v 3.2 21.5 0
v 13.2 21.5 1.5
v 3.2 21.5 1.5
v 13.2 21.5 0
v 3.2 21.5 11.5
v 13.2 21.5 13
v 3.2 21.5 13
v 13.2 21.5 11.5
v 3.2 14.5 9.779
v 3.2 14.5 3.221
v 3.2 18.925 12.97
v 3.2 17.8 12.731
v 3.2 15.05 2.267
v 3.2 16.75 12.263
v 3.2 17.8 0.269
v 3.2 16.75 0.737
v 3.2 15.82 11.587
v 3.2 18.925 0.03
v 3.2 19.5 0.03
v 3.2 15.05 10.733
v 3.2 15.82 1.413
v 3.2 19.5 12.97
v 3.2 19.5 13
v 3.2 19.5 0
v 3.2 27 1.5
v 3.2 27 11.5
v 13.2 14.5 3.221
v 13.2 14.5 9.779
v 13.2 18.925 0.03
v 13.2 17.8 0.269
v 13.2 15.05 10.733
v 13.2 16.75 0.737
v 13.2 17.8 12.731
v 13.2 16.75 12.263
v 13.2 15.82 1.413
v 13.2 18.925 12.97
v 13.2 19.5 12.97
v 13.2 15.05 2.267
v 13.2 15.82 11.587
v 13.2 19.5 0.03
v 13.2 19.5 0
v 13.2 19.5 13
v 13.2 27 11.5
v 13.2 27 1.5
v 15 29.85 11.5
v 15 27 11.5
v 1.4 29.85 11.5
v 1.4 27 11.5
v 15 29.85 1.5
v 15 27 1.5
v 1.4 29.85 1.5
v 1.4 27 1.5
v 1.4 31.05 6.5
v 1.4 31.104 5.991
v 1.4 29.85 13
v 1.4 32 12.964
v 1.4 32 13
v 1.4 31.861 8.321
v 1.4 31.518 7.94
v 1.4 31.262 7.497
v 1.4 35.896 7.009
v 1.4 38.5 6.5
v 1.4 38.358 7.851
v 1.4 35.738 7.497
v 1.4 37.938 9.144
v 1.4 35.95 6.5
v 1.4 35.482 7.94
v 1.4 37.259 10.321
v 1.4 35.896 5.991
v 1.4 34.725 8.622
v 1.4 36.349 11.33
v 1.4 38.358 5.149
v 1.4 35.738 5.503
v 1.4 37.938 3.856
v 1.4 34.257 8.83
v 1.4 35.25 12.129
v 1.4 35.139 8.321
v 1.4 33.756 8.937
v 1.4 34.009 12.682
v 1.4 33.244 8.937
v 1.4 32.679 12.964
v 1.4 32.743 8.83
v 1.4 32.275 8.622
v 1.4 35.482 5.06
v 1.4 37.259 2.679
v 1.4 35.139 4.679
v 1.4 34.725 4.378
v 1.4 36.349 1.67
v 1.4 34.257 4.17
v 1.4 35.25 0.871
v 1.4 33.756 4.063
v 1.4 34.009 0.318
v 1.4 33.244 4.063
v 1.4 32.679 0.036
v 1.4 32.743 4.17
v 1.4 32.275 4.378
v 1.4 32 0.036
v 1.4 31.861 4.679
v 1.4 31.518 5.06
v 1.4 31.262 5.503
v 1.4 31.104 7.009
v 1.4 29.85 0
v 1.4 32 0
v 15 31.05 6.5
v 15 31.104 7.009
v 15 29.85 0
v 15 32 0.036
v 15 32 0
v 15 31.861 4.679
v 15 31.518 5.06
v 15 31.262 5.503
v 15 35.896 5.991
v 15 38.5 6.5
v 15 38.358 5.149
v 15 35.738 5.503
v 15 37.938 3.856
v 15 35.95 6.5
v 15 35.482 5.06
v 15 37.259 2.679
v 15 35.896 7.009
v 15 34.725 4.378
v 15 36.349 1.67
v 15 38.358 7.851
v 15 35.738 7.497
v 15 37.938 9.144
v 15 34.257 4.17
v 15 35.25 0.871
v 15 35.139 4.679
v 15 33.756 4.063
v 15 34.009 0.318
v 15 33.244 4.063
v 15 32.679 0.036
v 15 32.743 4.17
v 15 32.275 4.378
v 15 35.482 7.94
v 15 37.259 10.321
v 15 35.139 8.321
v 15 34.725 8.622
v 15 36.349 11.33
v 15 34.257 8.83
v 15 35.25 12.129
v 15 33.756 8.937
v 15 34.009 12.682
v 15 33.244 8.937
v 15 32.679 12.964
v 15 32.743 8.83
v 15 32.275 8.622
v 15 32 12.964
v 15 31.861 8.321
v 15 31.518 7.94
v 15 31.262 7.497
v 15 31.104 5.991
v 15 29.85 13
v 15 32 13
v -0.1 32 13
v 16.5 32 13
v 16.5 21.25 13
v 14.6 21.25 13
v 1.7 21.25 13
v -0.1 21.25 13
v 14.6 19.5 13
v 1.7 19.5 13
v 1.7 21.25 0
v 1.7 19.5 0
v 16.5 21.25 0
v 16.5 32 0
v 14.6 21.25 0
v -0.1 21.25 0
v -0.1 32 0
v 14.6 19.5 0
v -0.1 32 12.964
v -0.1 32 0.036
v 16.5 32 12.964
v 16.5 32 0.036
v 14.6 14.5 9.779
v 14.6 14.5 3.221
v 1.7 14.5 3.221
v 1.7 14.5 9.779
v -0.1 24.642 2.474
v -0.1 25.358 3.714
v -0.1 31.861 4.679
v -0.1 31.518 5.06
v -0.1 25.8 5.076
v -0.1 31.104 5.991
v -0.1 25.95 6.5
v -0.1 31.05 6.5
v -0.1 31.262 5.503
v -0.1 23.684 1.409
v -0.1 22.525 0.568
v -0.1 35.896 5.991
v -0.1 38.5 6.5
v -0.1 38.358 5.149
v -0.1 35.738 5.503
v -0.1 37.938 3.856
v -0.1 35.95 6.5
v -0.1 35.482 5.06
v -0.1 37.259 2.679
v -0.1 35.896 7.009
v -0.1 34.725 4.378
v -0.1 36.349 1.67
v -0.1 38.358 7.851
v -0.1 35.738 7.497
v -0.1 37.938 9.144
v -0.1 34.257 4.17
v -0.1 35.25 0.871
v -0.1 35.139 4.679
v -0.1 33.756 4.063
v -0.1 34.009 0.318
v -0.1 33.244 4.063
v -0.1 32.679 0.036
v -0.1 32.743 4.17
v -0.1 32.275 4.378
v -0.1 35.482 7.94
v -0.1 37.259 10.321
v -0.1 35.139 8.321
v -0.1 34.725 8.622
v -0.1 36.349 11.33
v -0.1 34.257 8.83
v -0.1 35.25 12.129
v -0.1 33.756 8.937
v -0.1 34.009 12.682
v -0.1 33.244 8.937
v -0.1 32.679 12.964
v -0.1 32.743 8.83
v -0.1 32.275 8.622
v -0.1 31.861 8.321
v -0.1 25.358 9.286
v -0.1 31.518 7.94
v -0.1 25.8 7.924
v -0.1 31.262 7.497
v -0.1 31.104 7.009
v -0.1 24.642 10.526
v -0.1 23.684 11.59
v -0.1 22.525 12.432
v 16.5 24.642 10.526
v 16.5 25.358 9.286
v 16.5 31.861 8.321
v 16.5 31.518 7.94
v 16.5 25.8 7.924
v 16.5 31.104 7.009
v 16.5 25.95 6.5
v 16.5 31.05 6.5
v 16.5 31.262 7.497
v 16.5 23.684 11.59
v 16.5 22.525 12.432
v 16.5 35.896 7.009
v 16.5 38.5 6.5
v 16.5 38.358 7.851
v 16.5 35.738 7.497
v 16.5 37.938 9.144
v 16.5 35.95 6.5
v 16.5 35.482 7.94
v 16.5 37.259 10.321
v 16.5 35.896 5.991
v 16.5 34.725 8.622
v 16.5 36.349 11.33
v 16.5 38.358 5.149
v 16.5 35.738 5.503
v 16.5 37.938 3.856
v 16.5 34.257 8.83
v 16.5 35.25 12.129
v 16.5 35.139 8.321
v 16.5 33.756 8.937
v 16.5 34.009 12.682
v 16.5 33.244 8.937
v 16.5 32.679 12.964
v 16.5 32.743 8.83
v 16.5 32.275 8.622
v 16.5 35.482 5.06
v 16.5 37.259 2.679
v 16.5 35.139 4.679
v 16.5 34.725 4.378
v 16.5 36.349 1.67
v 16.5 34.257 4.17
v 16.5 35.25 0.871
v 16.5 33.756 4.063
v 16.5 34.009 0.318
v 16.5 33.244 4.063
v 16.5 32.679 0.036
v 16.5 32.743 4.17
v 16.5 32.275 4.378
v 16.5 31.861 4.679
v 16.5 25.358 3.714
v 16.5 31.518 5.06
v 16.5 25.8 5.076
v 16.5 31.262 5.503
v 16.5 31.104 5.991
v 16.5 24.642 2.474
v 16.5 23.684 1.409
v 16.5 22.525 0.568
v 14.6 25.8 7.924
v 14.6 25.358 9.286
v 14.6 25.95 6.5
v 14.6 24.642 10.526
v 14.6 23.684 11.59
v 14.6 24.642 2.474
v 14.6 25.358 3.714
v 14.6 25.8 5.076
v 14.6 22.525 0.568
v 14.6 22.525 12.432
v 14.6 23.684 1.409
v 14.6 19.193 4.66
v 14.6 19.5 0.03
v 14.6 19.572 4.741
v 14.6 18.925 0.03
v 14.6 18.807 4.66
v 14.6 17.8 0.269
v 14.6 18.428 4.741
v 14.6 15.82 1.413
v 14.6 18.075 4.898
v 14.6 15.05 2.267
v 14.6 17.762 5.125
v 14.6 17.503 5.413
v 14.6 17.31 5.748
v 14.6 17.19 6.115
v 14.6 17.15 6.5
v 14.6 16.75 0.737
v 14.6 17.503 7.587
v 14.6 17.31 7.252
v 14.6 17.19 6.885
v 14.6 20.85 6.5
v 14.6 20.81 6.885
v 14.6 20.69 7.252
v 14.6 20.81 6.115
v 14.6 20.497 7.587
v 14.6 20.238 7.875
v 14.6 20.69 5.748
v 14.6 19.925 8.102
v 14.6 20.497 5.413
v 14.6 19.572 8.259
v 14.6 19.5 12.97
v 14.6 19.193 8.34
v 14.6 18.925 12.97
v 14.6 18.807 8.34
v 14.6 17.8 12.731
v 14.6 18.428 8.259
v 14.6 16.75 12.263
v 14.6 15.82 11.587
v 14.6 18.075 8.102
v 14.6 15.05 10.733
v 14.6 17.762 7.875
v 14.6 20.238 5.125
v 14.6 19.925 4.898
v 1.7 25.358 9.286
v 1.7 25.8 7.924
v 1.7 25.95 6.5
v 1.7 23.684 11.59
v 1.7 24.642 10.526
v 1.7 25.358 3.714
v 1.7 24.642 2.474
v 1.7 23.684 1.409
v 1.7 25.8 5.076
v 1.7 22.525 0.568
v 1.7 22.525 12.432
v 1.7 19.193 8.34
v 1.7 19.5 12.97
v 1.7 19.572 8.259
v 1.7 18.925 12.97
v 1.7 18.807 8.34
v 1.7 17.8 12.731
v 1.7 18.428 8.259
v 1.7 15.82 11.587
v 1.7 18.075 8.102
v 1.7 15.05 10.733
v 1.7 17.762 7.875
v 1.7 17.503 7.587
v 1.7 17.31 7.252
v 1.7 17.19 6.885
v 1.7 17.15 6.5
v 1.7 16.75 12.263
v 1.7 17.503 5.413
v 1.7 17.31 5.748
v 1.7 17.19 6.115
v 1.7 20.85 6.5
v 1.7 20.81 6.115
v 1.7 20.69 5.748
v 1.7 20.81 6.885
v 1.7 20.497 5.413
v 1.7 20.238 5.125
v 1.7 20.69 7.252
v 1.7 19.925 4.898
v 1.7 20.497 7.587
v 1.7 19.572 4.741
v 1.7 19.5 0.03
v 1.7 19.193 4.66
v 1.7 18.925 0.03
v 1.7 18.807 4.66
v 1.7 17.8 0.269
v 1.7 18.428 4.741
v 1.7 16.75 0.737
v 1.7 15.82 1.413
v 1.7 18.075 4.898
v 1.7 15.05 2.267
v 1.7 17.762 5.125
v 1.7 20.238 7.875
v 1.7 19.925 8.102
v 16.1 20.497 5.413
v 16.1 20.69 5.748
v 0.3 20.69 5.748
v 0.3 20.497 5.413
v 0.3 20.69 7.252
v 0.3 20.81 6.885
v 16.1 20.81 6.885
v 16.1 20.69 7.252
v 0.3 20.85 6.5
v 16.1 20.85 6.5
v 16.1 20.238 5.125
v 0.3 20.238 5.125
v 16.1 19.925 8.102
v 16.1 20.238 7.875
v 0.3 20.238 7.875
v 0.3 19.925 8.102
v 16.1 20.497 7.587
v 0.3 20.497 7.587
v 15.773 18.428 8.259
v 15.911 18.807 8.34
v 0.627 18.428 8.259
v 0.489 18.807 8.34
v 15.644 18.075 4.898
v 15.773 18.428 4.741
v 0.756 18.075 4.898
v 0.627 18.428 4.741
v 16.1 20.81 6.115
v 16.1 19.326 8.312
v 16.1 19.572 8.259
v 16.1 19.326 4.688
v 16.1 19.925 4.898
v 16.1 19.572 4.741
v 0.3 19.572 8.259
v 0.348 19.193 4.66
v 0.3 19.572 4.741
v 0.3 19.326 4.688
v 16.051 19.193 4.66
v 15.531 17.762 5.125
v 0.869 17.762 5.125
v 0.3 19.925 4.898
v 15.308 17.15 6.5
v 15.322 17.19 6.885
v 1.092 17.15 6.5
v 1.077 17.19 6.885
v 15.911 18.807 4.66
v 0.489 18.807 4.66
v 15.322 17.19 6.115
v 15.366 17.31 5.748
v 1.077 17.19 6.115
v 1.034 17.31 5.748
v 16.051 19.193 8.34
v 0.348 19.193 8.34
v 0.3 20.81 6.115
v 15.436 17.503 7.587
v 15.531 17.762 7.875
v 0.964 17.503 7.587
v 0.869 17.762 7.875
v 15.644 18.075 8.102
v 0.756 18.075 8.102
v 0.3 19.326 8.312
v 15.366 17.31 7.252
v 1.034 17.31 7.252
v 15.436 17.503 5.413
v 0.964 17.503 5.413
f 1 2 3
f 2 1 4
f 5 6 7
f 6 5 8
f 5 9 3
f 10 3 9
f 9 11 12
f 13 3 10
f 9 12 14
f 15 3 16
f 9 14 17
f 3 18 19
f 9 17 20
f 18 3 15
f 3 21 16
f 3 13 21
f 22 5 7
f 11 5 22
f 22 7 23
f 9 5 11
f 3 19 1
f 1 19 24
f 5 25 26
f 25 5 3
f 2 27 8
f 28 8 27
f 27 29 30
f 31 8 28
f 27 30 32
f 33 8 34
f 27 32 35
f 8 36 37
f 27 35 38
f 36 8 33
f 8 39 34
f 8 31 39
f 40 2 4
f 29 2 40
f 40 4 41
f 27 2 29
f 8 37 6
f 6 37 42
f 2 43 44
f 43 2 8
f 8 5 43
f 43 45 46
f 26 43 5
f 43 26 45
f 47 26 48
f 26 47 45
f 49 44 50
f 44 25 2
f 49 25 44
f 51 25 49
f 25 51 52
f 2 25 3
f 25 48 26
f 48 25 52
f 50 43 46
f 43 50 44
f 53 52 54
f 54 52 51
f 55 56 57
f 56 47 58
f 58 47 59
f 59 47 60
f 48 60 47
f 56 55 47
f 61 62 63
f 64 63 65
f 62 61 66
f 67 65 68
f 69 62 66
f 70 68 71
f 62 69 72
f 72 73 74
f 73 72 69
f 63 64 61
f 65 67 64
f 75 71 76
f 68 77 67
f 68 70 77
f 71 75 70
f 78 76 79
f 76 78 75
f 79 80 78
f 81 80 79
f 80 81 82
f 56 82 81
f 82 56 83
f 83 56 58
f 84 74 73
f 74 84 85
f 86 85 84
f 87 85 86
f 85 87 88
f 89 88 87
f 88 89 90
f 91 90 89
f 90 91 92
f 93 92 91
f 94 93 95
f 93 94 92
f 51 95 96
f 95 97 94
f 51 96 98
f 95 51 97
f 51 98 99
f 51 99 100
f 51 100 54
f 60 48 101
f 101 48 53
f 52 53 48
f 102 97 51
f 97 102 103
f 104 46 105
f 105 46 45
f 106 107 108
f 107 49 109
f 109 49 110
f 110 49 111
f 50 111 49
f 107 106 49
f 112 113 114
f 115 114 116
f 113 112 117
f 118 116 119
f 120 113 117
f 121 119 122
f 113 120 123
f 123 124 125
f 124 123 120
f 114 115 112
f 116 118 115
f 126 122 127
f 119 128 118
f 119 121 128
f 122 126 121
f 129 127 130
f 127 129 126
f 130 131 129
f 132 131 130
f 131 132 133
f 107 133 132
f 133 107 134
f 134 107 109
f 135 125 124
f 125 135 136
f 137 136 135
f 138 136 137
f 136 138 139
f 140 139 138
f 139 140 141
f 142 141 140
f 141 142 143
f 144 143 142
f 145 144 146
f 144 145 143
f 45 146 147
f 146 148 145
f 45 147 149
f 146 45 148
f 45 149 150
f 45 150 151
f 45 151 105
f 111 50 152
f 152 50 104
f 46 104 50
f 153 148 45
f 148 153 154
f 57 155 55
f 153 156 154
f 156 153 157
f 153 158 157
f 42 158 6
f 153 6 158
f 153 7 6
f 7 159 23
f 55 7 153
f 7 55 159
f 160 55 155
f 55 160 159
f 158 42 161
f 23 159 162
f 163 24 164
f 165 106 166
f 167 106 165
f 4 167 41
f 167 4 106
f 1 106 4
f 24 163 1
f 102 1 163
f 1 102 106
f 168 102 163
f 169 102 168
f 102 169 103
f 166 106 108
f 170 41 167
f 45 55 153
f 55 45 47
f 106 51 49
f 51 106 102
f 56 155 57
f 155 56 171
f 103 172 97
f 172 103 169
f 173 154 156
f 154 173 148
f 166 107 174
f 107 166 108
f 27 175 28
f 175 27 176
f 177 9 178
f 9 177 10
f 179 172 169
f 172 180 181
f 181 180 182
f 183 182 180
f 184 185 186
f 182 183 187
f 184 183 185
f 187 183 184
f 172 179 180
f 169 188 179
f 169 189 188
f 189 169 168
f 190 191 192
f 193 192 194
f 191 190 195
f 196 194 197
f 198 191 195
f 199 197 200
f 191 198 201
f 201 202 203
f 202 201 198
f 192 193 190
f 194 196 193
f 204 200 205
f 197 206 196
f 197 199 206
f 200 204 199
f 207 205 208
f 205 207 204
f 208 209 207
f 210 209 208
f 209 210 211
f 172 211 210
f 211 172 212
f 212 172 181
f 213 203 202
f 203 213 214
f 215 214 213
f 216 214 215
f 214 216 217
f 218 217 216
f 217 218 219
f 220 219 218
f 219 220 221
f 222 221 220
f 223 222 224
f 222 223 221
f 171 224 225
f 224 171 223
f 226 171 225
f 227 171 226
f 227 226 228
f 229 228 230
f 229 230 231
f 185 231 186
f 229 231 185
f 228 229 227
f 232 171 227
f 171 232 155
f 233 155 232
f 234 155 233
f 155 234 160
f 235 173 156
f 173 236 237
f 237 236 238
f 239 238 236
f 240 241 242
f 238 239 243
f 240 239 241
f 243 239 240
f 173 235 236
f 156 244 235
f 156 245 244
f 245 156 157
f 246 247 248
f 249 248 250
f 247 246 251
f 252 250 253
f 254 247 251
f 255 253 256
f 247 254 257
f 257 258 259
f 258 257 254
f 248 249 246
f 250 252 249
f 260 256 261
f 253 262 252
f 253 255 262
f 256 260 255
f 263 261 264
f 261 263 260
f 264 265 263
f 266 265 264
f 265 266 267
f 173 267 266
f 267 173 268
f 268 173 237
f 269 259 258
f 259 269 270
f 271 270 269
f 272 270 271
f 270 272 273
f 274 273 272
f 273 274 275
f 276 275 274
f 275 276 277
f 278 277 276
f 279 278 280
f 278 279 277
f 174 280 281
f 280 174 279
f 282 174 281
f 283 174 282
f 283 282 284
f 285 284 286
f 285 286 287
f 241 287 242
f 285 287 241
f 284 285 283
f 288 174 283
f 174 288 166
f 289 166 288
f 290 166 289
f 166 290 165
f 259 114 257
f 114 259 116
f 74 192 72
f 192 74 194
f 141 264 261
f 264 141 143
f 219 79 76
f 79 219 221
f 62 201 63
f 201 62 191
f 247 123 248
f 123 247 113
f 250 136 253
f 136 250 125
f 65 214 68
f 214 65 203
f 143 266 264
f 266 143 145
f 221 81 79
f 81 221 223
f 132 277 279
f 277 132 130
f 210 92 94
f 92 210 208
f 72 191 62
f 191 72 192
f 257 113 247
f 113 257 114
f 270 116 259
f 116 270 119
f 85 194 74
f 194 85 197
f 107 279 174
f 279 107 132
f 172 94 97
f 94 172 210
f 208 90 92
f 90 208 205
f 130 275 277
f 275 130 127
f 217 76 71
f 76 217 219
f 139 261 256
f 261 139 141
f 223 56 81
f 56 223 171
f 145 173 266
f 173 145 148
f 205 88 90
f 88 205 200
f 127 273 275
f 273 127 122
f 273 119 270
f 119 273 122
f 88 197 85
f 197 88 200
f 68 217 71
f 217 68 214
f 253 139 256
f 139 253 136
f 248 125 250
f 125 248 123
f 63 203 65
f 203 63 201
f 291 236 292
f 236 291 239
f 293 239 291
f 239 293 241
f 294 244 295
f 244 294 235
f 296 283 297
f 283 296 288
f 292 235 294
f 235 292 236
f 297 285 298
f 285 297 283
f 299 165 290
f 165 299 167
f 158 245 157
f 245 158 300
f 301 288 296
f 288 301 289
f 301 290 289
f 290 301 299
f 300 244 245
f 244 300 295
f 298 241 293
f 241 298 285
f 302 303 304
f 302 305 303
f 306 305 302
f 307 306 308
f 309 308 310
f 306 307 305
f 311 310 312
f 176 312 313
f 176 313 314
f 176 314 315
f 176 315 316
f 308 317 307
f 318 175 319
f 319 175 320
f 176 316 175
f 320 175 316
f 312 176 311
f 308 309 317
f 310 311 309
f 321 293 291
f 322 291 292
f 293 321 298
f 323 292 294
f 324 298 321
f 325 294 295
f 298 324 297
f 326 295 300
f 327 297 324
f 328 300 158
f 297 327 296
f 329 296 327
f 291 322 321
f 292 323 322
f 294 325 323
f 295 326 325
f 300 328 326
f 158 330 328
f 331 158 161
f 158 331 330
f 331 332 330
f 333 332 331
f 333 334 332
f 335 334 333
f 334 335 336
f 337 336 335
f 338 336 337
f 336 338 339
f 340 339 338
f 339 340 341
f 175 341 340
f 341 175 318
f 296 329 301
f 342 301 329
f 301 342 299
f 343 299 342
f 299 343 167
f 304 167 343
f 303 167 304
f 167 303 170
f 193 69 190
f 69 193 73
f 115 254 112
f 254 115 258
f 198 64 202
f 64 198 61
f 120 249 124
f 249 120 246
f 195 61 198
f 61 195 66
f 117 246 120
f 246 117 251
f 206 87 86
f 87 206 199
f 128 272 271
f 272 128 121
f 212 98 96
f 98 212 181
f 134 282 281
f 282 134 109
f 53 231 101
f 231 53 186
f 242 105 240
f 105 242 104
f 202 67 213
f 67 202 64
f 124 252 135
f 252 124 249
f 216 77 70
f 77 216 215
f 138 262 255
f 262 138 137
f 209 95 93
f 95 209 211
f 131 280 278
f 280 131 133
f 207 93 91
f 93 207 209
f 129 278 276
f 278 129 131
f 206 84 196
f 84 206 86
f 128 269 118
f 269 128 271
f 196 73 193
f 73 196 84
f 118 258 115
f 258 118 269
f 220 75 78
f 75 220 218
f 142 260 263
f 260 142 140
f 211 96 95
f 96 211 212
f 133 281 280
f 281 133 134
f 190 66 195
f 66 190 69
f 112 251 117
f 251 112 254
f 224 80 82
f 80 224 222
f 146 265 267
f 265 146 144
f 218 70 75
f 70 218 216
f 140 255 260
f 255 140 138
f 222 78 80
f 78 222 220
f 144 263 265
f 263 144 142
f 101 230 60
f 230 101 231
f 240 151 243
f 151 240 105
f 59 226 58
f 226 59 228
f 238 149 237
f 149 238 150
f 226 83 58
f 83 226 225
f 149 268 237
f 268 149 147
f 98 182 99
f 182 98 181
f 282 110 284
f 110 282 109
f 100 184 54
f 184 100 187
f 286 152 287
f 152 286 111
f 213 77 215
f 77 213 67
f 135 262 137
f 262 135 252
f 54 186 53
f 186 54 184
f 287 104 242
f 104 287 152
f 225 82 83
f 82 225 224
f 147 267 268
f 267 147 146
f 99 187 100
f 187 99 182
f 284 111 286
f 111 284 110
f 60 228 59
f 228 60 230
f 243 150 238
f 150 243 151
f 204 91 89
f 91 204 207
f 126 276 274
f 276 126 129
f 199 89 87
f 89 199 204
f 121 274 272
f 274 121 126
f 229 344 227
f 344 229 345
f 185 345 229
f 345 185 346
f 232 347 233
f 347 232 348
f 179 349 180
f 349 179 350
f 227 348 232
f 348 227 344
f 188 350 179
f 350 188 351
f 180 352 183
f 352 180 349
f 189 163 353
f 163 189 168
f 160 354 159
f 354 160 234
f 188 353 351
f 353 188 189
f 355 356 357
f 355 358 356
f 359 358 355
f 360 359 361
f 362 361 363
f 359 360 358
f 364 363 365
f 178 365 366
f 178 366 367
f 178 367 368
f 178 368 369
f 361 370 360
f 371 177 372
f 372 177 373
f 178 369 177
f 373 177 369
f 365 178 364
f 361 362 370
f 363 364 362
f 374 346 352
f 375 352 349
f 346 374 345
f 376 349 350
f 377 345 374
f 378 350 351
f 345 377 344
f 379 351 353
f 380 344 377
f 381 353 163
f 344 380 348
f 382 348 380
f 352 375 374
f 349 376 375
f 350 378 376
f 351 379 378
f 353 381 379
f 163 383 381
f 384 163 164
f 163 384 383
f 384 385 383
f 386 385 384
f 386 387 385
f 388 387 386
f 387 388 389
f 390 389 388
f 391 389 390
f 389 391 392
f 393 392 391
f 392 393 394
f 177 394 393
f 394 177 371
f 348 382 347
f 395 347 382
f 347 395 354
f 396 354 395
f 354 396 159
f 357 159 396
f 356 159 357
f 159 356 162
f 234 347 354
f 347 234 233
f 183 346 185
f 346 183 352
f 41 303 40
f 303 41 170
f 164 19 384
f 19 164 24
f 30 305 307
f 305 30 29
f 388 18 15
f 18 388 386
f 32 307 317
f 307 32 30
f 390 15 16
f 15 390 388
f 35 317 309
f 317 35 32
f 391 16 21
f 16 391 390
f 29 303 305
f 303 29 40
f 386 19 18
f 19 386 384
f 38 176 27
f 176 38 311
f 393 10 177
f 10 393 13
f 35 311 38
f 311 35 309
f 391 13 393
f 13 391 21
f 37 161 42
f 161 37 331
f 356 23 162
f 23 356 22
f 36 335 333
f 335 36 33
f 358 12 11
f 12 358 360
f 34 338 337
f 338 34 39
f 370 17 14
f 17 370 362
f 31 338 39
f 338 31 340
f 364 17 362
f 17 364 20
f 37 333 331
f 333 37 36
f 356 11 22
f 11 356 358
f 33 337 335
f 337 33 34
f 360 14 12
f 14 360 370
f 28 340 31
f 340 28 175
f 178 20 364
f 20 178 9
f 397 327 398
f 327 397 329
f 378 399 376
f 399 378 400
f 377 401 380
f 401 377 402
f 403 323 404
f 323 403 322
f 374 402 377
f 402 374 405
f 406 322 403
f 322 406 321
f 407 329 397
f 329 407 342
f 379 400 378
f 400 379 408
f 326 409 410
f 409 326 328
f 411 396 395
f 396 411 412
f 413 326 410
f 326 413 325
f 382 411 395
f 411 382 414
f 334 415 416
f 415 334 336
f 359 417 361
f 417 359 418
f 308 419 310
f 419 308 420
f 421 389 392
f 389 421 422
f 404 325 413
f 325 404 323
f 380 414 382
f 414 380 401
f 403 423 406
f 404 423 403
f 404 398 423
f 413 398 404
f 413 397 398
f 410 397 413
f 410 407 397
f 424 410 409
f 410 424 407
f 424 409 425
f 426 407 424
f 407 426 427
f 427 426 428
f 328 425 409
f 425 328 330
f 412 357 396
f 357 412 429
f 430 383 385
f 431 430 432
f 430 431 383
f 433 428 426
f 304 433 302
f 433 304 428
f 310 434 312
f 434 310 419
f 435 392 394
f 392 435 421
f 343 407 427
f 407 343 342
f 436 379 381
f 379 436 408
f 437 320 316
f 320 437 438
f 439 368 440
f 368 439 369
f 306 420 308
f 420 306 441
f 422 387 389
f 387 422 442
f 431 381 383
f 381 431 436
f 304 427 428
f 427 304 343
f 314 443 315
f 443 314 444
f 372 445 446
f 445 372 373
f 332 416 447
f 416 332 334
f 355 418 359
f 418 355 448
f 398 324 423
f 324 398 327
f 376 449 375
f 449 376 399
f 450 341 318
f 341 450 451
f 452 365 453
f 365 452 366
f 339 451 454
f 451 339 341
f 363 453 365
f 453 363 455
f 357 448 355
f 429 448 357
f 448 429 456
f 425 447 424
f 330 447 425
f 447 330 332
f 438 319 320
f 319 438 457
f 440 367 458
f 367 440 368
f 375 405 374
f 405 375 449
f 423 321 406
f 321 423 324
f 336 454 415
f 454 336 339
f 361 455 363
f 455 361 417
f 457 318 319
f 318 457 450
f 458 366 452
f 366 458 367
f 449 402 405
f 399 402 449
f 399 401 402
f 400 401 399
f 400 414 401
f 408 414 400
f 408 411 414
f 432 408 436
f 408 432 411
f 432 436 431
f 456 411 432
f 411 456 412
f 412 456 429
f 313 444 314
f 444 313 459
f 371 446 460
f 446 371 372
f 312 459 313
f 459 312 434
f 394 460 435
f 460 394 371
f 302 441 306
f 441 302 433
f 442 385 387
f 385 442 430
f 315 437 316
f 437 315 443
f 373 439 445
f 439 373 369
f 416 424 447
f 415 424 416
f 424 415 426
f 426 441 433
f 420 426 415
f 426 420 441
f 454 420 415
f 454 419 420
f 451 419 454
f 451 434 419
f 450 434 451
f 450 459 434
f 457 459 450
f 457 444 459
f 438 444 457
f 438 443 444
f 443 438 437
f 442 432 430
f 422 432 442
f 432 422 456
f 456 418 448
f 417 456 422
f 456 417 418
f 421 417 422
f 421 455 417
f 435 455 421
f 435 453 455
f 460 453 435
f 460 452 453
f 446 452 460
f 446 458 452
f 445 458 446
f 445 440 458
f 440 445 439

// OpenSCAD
//
// PARAMETRIC Cable Chain v0.5
// Zerginator 10/2015
//



use <text_on.scad>

$fn = 30;

ChainDef = [[1,0]];
//ChainDef = [[1,0],[1,0],[1,0],[1,0],[1,0],[1,0],[1,0],[1,0],[1,0],[1,0],[1,30],[1,30],[1,30],[1,30],[1,30],[1,30],[1,0],[1,0],[1,0],[1,0],[1,0],[1,0],[1,0]];


// ===============================================================================
// Type
Type        =       2;         // 1: +45° Bewegbar, 2: +-45°
Round       =       1;         // Runder oder eckiger Typ

// ===============================================================================
// box parameters
width       =       16.6;       // width of the chainlink (Standard: 16.6)
height      =       13;         // height of the chainlink (Standard: 13)
length      =       25;         // length of the chainlink  (Standard: 25, min 30 für Eckig)


// ===============================================================================
// === OUTPUT


// ===Check Consistency of Values
if((!Type && !Start && !End) || ((Round != 1) && (length/height<2.2)))
{
    // === IDIOT BOX (if imposible values were selected)
    cube([30,30,30]);
    color("red")
    text_on_cube("Doh!!", locn_vec=[15,15,15], cube_size=30, face="top", size=5, center=true); 
    color("red")
    text_on_cube("Error!!", locn_vec=[15,15,15], cube_size=30, face="front", size=5, center=true);   
    color("red")
    text_on_cube("Fehler!!", locn_vec=[15,15,15], cube_size=30, face="right", size=4, center=true);   
    color("red")
    text_on_cube("Défaut!!", locn_vec=[15,15,15], cube_size=30, face="left", size=4, center=true);   
    color("red")
    text_on_cube("ошибка!!", locn_vec=[15,15,15], cube_size=30, face="back", size=4, center=true); 
    color("red")
    text_on_cube("错误!!", locn_vec=[15,15,15], cube_size=30, face="bottom", size=4, center=true);     
}

else
    
// === Put the Chainlinks together to a single Cablechain
{
    if( Round == 1)
    {
        vec = select2(ChainDef,[1]);
        for (i = [1:len(ChainDef)]) { 
            c = sumv(vec,i-1,0);
            a = coslength(i,ChainDef,vec); 
            b = sinlength(i,ChainDef,vec); 

            pcsOChain(width, length, height, 0, a, b, c);
        }
    }

}


// ===============================================================================
// === Mathematikfunktionen
function sumv(v,i,s=0) = (i==s ? v[i] : v[i] + sumv(v,i-1,s));
function select(source_vector,select_vector)=
   [ for (i = [0 : len(select_vector) - 1]) source_vector[select_vector[i]] ];
function select2(source_vector,select_vector)=
   [ for (i = [0 : len(source_vector) - 1]) source_vector[i][1] ];
function coslength(j,ChainDef,vec,s=1)=
   (j==s ? (((height/13)*(length-10.5)) * cos(sumv(vec,j-1,0)-ChainDef[j-1][1])) : (((height/13)*(length-10.5))) * cos(sumv(vec,j-1,0)-ChainDef[j-1][1]) + coslength(j-1,ChainDef,vec));  
   
function sinlength(j,ChainDef,vec,s=1)=
   (j==s ? ((height/13)*(length-10.5))*(sin(sumv(vec,j-1,0)-ChainDef[j-1][1])) : ((height/13)*(length-10.5))*(sin(sumv(vec,j-1,0)-ChainDef[j-1][1])) + sinlength(j-1,ChainDef,vec));


// ===============================================================================
// === Generate Chain module
module pcsOChain(width, length, height, posx,posy,posz, ChainAngle) 
    {    
        translate([posx,posy,posz])
        translate([0,(height/13)*4.5,(height/13)*6.5])  
        rotate(a=ChainAngle, v=[1,0,0])
        translate([0,-(height/13)*4.5,-(height/13)*6.5])  
        if (Round != 1)
        {
            pcsMiddlePart(width, length, height);
            pcsOFront(width, length, height);
            translate([0,length - height - overlapping,0]) pcsOBack(width, length, height);
        }
        else
        {
            CableChain(width, length, height);
        }
    }





// ===============================================================================
// ===============================================================================
// ===============================================================================




// ===============================================================================
// === Cable Chain (Rund)

module CableChain(width, length, height)
{
translate([width,0,0])
rotate(a=90, v=[0,0,1])
difference()
    {
    union()
        {
        difference()
            {
                union()
                   {
                    translate([0,0.1,0])
                        rotate(a=0, v=[0,0,1])
                            cube([(height/13)*(length-7.5),width,(height/13)*13]);
                    translate([(height/13)*(length-7.5),0.1,(height/13)*6.5])
                        rotate(a=90, v=[-1,0,0])
                            cylinder(r=(height/13)*6.5, h=width);
                   }

                union()
                    {
                    union()
                        {
                        if (Type == 1)
                        {
                            translate([(height/13)*-0.8,-1,(height/13)*6.4])
                                rotate(a=35, v=[0,-1,0])
                                    cube([(height/13)*9,width+1.5,(height/13)*5]);
                            translate([(height/13)*3.2,-1,(height/13)*9.9])
                                rotate(a=0, v=[0,0,1])
                                    cube([(height/13)*7,width+1.5,(height/13)*4]);
                        } 
                        translate([(height/13)*4.6,2,(height/13)*6.5])
                            rotate(a=90, v=[1,0,0])   
                                cylinder(r=(height/13)*6.85, h=3);
                        
                        //FEMALE
                            translate([(height/13)*(length-6),width+0.5,(height/13)*6.5])
                                rotate(a=90, v=[1,0,0])   
                                    cylinder(r=(height/13)*2.45, h=width+0.9);                         
                         translate([(height/13)*4.6,width+1.3,(height/13)*6.5])
                            rotate(a=90, v=[1,0,0])   
                                cylinder(r=(height/13)*6.85, h=3);
                        }
                    difference()
                        {
                        translate([0,-0.5,0])
                            rotate(a=0, v=[0,0,1])
                                cube([(height/13)*5,width+0.9,(height/13)*4]);
                        {
                        translate([(height/13)*5,width+0.4,(height/13)*5.5])
                            rotate(a=90, v=[1,0,0])   
                                cylinder(r=(height/13)*5.5, h=width+0.9);
                            }
                        }
                    if (Type == 2)
                        {
                        difference()
                            {
                            translate([0,-0.5,9])
                                rotate(a=0, v=[0,0,1])
                                    cube([(height/13)*5,width+0.9,(height/13)*4]);
                            {
                            translate([(height/13)*5,width+0.4,(height/13)*7.5])
                                rotate(a=90, v=[1,0,0])   
                                    cylinder(r=(height/13)*5.5, h=width+0.9);
                                }
                            }
                        }
                    }
                }
                
                // MALE
                difference()
                {
                    translate([(height/13)*4.5,width-0.3,(height/13)*6.5])
                        rotate(a=90, v=[1,0,0])   
                            cylinder(r=(height/13)*1.85, h=width-0.8); 
                    translate([(height/13)-1,-2,(height/13)*4.5])
                        rotate(a=-20, v=[0,0,1])
                            cube([4,4,4]);
                    translate([(height/13)-1,18.8,(height/13)*4.5]) //2.5
                            rotate(a=-70, v=[0,0,1]) //-15
                                cube([4,4,4]);
                } 
        } 
        
    union()
        {
            translate([(height/13)*-1,3.4,1.5])
                rotate(a=0, v=[0,0,1])
                    cube([(height/13)*(length+1),width-6.6,height-3]);
           translate([(height/13)*(length-9.65),3.4,(height/13)*3.5])
                rotate(a=0, v=[0,0,1])
                    cube([(height/13)*8,width-6.6,(height/13)*10]);    
            
            if (Type == 1)
            {
                translate([(height/13)*-1,3.4,(height/13)*-1.5])
                    rotate(a=0, v=[0,0,1])
                        cube([(height/13)*8,width-6.6,(height/13)*13]);
                translate([(height/13)*(length-12.5),1.6,(height/13)*9.7])
                    rotate(a=-60, v=[1,0,0])
                        cube([(height/13)*11,3,3]);  
                translate([(height/13)*(length-12.5),width-1.4,(height/13)*9.7])
                    rotate(a=150, v=[1,0,0])
                        cube([(height/13)*11,3,3]);
                translate([(height/13)*(length-12.5),1.6,1.5])
                    rotate(a=0, v=[0,0,1])
                        cube([(height/13)*6,width-3,((height/13)*8.2)+((height/13)*1.5-1.5)]);
                translate([(height/13)*(length-9.65),1.6,0])
                    rotate(a=0, v=[0,0,1])
                        cube([(height/13)*10,width-3,(height/13)*9.7]);
            }
            
            if (Type == 2)
            {
            translate([(height/13)*-1,3.4,(height/13)*-1.5])
                    rotate(a=0, v=[0,0,1])
                        cube([(height/13)*8,width-6.6,(height/13)*16]);
            translate([(height/13)*(length-12.5),1.6,1.5])
                    rotate(a=0, v=[0,0,1])
                        cube([(height/13)*6,width-3,height-3]);

            translate([(height/13)*(length-9.65),1.6,0])
                rotate(a=0, v=[0,0,1])
                    cube([(height/13)*10,width-3,(height/13)*13]);
            }
        }
    }    
    
} // END CABLE CHAIN RUND
